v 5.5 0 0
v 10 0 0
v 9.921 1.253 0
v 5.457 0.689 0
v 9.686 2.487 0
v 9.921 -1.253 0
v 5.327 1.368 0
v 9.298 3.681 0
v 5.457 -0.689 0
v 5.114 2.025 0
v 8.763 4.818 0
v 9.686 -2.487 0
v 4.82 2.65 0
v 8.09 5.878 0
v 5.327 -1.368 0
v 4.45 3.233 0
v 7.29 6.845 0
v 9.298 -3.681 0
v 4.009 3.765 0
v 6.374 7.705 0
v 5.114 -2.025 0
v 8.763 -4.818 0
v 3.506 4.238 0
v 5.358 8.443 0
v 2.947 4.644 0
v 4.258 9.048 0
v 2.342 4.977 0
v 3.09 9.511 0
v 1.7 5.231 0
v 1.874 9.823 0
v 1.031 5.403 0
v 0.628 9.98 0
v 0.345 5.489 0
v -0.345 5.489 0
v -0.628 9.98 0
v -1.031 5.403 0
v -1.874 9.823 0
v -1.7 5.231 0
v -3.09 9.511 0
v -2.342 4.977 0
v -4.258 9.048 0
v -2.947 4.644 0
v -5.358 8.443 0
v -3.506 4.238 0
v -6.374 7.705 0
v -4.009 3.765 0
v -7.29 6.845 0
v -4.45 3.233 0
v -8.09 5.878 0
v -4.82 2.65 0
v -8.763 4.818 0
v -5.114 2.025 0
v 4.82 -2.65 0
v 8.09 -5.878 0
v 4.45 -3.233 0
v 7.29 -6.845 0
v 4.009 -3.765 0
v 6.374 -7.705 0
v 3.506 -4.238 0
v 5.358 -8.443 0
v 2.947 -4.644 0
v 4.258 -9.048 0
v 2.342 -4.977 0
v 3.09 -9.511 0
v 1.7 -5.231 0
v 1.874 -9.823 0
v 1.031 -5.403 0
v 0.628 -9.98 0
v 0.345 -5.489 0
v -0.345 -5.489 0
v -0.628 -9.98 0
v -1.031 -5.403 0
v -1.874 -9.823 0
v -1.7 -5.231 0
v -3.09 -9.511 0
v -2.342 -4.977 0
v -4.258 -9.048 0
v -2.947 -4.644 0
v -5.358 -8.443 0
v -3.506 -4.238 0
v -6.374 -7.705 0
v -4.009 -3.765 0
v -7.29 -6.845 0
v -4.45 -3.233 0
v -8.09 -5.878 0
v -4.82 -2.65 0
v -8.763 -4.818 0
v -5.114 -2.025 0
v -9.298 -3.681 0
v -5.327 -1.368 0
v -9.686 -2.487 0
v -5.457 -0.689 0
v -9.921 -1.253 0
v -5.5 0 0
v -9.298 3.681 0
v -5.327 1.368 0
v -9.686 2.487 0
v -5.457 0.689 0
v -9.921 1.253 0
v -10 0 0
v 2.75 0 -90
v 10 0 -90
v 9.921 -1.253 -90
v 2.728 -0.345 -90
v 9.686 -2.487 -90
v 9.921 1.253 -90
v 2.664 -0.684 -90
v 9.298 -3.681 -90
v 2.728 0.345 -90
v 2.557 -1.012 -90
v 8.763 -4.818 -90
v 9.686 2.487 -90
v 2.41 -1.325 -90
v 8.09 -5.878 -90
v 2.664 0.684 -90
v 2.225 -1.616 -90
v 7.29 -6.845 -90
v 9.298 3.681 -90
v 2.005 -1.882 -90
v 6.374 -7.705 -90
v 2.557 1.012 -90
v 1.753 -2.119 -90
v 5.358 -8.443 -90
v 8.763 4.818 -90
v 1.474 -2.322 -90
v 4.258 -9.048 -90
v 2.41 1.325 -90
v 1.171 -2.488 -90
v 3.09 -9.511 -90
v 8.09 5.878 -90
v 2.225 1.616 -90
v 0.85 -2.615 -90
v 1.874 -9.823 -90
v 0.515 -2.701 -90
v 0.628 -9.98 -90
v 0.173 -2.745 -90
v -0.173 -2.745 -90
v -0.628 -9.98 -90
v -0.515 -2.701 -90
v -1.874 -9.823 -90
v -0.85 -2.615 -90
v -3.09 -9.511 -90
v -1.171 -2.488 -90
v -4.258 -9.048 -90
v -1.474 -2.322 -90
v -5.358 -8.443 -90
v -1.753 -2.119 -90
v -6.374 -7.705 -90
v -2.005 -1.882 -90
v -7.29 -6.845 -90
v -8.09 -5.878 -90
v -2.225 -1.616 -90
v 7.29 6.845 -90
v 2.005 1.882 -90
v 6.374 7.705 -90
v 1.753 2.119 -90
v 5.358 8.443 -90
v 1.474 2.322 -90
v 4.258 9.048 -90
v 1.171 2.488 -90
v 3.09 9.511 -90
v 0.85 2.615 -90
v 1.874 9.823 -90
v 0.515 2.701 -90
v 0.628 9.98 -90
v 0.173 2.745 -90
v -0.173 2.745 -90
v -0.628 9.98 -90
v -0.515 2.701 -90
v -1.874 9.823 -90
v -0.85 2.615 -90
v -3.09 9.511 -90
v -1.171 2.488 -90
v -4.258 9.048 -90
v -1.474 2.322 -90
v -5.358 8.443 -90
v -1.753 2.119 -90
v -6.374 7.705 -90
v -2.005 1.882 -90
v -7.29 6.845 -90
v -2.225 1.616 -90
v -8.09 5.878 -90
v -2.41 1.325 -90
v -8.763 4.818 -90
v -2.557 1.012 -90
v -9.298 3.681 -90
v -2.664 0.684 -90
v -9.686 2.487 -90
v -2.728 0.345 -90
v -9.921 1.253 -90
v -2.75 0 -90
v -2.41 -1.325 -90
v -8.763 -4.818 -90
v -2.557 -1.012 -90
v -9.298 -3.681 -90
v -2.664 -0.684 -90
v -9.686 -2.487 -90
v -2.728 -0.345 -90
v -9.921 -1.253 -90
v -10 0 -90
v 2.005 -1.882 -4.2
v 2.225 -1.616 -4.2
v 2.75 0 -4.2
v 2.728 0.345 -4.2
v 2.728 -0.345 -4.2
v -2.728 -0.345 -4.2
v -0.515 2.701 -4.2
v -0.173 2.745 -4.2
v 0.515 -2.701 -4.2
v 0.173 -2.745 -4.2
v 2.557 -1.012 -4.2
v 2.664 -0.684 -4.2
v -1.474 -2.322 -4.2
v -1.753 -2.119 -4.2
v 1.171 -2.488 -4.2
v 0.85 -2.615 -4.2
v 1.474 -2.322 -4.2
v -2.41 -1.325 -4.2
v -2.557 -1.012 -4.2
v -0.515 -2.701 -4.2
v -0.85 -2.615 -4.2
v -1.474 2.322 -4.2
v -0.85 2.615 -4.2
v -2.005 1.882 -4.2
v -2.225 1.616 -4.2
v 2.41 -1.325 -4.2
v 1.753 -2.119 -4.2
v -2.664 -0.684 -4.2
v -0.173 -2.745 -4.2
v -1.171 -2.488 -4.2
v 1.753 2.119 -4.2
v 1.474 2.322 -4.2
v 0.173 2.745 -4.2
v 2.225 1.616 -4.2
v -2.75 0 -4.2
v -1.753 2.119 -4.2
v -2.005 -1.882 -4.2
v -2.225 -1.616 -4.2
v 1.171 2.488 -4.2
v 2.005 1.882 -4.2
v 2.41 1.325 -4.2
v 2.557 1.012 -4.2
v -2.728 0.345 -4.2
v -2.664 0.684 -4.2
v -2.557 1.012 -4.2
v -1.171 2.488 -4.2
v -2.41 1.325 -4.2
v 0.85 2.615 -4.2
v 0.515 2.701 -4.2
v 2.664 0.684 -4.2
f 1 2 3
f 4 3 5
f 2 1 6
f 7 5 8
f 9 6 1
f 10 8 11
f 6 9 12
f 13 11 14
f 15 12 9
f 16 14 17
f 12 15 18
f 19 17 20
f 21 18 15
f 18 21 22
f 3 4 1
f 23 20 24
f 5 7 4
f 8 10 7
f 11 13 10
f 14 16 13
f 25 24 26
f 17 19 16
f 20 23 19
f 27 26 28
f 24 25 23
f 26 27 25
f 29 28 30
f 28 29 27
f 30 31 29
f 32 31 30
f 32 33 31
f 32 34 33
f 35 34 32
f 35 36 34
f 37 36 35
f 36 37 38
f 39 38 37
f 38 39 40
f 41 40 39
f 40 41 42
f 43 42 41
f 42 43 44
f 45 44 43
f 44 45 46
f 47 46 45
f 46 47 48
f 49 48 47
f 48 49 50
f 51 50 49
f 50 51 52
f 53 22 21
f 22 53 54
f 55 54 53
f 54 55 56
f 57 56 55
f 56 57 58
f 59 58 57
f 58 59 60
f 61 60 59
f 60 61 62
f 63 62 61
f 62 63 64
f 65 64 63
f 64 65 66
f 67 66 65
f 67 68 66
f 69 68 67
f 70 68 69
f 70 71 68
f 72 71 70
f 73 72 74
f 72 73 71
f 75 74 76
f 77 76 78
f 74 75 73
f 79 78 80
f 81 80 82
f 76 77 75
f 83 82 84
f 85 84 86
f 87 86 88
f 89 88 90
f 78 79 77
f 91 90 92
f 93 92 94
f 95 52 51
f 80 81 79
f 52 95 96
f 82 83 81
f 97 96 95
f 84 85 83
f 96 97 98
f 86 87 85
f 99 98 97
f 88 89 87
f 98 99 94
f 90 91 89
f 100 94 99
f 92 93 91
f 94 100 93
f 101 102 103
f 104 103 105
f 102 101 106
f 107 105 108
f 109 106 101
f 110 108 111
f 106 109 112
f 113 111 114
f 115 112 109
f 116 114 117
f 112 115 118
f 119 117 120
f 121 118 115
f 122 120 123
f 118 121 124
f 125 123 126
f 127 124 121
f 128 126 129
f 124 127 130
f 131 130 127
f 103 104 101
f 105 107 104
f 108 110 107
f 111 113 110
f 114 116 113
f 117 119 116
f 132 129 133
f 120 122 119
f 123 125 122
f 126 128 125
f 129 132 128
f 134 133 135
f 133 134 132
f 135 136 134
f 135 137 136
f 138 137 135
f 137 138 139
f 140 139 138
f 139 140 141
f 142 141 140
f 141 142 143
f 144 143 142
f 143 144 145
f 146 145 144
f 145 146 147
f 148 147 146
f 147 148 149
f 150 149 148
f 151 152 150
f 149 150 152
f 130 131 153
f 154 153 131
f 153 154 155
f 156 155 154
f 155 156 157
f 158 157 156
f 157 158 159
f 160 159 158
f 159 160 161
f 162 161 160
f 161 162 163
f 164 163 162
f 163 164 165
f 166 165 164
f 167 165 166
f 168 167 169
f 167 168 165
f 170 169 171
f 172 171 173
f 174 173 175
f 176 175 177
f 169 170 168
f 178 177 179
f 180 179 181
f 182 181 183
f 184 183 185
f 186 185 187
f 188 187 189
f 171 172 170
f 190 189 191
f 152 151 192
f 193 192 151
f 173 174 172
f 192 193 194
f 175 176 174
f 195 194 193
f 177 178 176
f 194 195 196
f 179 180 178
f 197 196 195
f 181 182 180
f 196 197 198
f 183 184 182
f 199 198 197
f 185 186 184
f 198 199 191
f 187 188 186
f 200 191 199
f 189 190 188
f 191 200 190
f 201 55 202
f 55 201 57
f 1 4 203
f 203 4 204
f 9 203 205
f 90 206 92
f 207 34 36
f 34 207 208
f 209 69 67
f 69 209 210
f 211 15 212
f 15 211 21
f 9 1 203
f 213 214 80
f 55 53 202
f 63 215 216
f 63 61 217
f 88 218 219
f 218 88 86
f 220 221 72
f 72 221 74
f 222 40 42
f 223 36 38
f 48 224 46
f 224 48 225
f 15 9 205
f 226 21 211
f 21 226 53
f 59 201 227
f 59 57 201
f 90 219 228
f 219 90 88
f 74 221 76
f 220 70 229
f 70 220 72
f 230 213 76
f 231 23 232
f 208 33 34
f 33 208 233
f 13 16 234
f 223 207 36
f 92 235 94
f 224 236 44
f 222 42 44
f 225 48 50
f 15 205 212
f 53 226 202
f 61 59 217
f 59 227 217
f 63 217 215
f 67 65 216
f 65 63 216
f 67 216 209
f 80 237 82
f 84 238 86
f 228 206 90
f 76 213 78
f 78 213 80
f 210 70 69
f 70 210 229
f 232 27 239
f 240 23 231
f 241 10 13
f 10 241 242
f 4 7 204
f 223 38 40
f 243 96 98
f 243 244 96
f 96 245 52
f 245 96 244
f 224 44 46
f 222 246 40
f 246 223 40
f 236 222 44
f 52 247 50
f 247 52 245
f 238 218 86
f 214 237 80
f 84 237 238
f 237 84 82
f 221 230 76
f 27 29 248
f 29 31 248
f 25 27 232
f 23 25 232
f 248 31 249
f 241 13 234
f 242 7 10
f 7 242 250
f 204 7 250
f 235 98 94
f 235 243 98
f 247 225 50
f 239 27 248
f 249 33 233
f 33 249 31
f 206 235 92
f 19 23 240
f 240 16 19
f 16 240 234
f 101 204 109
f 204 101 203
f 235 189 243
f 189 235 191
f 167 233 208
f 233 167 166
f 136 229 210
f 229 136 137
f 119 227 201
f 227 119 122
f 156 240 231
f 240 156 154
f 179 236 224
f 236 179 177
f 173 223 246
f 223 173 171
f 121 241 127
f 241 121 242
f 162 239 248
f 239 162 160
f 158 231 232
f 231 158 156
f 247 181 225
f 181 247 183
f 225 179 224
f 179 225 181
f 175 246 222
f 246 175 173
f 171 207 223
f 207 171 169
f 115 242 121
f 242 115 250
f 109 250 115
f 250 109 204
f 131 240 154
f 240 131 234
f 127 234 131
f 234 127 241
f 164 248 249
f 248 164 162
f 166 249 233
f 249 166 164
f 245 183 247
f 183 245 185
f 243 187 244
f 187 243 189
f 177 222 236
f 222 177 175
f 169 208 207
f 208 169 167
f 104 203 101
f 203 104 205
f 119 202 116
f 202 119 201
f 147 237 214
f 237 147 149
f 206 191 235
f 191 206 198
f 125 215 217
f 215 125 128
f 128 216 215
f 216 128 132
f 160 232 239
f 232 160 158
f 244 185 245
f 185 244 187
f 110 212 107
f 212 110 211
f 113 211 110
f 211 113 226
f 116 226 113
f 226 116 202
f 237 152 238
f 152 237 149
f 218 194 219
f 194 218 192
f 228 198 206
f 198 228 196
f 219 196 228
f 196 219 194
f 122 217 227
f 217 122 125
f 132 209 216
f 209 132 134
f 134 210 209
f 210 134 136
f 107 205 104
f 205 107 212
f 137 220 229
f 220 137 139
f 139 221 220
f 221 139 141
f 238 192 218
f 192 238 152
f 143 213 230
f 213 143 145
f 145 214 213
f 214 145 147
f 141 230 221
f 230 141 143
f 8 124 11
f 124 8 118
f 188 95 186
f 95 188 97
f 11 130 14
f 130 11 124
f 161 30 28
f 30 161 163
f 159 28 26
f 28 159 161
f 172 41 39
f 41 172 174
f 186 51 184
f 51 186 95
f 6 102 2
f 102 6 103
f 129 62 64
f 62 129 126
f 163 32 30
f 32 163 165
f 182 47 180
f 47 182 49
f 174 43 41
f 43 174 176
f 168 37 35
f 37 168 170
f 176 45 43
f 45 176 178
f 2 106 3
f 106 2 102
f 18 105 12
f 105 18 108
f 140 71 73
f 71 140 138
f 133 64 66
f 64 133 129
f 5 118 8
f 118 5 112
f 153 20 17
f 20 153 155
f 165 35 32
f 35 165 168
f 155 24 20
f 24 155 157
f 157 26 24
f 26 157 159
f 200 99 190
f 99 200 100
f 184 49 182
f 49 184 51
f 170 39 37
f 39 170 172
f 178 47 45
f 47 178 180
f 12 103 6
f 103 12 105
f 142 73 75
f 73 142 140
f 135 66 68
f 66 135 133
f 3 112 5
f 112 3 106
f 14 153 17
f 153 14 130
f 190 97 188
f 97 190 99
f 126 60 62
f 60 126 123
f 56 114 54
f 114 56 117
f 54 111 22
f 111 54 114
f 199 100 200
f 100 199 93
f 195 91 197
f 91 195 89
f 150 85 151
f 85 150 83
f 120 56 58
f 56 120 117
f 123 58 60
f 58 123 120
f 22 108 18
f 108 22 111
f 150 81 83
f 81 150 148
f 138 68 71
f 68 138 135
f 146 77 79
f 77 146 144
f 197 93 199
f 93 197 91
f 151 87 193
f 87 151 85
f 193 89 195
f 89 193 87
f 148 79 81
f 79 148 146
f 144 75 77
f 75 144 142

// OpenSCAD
$fn = 50;


difference() {
	union() {
		translate(v = [0, 0, -90.0000000000]) {
			cylinder(h = 90, r = 10.0000000000);
		}
		cylinder(h = 0, r = 13.0000000000);
	}
	union() {
		translate(v = [0, 0, 0]) {
			rotate(a = [0, 0, 0]) {
				difference() {
					union() {
						#translate(v = [0, 0, -90.0000000000]) {
							cylinder(h = 90, r = 2.2500000000);
						}
						#translate(v = [0, 0, -4.2000000000]) {
							cylinder(h = 4.2000000000, r1 = 2.7500000000, r2 = 5.5000000000);
						}
						#translate(v = [0, 0, -90.0000000000]) {
							cylinder(h = 90, r = 2.7500000000);
						}
						#translate(v = [0, 0, -90.0000000000]) {
							cylinder(h = 90, r = 2.2500000000);
						}
					}
					union();
				}
			}
		}
	}
}
